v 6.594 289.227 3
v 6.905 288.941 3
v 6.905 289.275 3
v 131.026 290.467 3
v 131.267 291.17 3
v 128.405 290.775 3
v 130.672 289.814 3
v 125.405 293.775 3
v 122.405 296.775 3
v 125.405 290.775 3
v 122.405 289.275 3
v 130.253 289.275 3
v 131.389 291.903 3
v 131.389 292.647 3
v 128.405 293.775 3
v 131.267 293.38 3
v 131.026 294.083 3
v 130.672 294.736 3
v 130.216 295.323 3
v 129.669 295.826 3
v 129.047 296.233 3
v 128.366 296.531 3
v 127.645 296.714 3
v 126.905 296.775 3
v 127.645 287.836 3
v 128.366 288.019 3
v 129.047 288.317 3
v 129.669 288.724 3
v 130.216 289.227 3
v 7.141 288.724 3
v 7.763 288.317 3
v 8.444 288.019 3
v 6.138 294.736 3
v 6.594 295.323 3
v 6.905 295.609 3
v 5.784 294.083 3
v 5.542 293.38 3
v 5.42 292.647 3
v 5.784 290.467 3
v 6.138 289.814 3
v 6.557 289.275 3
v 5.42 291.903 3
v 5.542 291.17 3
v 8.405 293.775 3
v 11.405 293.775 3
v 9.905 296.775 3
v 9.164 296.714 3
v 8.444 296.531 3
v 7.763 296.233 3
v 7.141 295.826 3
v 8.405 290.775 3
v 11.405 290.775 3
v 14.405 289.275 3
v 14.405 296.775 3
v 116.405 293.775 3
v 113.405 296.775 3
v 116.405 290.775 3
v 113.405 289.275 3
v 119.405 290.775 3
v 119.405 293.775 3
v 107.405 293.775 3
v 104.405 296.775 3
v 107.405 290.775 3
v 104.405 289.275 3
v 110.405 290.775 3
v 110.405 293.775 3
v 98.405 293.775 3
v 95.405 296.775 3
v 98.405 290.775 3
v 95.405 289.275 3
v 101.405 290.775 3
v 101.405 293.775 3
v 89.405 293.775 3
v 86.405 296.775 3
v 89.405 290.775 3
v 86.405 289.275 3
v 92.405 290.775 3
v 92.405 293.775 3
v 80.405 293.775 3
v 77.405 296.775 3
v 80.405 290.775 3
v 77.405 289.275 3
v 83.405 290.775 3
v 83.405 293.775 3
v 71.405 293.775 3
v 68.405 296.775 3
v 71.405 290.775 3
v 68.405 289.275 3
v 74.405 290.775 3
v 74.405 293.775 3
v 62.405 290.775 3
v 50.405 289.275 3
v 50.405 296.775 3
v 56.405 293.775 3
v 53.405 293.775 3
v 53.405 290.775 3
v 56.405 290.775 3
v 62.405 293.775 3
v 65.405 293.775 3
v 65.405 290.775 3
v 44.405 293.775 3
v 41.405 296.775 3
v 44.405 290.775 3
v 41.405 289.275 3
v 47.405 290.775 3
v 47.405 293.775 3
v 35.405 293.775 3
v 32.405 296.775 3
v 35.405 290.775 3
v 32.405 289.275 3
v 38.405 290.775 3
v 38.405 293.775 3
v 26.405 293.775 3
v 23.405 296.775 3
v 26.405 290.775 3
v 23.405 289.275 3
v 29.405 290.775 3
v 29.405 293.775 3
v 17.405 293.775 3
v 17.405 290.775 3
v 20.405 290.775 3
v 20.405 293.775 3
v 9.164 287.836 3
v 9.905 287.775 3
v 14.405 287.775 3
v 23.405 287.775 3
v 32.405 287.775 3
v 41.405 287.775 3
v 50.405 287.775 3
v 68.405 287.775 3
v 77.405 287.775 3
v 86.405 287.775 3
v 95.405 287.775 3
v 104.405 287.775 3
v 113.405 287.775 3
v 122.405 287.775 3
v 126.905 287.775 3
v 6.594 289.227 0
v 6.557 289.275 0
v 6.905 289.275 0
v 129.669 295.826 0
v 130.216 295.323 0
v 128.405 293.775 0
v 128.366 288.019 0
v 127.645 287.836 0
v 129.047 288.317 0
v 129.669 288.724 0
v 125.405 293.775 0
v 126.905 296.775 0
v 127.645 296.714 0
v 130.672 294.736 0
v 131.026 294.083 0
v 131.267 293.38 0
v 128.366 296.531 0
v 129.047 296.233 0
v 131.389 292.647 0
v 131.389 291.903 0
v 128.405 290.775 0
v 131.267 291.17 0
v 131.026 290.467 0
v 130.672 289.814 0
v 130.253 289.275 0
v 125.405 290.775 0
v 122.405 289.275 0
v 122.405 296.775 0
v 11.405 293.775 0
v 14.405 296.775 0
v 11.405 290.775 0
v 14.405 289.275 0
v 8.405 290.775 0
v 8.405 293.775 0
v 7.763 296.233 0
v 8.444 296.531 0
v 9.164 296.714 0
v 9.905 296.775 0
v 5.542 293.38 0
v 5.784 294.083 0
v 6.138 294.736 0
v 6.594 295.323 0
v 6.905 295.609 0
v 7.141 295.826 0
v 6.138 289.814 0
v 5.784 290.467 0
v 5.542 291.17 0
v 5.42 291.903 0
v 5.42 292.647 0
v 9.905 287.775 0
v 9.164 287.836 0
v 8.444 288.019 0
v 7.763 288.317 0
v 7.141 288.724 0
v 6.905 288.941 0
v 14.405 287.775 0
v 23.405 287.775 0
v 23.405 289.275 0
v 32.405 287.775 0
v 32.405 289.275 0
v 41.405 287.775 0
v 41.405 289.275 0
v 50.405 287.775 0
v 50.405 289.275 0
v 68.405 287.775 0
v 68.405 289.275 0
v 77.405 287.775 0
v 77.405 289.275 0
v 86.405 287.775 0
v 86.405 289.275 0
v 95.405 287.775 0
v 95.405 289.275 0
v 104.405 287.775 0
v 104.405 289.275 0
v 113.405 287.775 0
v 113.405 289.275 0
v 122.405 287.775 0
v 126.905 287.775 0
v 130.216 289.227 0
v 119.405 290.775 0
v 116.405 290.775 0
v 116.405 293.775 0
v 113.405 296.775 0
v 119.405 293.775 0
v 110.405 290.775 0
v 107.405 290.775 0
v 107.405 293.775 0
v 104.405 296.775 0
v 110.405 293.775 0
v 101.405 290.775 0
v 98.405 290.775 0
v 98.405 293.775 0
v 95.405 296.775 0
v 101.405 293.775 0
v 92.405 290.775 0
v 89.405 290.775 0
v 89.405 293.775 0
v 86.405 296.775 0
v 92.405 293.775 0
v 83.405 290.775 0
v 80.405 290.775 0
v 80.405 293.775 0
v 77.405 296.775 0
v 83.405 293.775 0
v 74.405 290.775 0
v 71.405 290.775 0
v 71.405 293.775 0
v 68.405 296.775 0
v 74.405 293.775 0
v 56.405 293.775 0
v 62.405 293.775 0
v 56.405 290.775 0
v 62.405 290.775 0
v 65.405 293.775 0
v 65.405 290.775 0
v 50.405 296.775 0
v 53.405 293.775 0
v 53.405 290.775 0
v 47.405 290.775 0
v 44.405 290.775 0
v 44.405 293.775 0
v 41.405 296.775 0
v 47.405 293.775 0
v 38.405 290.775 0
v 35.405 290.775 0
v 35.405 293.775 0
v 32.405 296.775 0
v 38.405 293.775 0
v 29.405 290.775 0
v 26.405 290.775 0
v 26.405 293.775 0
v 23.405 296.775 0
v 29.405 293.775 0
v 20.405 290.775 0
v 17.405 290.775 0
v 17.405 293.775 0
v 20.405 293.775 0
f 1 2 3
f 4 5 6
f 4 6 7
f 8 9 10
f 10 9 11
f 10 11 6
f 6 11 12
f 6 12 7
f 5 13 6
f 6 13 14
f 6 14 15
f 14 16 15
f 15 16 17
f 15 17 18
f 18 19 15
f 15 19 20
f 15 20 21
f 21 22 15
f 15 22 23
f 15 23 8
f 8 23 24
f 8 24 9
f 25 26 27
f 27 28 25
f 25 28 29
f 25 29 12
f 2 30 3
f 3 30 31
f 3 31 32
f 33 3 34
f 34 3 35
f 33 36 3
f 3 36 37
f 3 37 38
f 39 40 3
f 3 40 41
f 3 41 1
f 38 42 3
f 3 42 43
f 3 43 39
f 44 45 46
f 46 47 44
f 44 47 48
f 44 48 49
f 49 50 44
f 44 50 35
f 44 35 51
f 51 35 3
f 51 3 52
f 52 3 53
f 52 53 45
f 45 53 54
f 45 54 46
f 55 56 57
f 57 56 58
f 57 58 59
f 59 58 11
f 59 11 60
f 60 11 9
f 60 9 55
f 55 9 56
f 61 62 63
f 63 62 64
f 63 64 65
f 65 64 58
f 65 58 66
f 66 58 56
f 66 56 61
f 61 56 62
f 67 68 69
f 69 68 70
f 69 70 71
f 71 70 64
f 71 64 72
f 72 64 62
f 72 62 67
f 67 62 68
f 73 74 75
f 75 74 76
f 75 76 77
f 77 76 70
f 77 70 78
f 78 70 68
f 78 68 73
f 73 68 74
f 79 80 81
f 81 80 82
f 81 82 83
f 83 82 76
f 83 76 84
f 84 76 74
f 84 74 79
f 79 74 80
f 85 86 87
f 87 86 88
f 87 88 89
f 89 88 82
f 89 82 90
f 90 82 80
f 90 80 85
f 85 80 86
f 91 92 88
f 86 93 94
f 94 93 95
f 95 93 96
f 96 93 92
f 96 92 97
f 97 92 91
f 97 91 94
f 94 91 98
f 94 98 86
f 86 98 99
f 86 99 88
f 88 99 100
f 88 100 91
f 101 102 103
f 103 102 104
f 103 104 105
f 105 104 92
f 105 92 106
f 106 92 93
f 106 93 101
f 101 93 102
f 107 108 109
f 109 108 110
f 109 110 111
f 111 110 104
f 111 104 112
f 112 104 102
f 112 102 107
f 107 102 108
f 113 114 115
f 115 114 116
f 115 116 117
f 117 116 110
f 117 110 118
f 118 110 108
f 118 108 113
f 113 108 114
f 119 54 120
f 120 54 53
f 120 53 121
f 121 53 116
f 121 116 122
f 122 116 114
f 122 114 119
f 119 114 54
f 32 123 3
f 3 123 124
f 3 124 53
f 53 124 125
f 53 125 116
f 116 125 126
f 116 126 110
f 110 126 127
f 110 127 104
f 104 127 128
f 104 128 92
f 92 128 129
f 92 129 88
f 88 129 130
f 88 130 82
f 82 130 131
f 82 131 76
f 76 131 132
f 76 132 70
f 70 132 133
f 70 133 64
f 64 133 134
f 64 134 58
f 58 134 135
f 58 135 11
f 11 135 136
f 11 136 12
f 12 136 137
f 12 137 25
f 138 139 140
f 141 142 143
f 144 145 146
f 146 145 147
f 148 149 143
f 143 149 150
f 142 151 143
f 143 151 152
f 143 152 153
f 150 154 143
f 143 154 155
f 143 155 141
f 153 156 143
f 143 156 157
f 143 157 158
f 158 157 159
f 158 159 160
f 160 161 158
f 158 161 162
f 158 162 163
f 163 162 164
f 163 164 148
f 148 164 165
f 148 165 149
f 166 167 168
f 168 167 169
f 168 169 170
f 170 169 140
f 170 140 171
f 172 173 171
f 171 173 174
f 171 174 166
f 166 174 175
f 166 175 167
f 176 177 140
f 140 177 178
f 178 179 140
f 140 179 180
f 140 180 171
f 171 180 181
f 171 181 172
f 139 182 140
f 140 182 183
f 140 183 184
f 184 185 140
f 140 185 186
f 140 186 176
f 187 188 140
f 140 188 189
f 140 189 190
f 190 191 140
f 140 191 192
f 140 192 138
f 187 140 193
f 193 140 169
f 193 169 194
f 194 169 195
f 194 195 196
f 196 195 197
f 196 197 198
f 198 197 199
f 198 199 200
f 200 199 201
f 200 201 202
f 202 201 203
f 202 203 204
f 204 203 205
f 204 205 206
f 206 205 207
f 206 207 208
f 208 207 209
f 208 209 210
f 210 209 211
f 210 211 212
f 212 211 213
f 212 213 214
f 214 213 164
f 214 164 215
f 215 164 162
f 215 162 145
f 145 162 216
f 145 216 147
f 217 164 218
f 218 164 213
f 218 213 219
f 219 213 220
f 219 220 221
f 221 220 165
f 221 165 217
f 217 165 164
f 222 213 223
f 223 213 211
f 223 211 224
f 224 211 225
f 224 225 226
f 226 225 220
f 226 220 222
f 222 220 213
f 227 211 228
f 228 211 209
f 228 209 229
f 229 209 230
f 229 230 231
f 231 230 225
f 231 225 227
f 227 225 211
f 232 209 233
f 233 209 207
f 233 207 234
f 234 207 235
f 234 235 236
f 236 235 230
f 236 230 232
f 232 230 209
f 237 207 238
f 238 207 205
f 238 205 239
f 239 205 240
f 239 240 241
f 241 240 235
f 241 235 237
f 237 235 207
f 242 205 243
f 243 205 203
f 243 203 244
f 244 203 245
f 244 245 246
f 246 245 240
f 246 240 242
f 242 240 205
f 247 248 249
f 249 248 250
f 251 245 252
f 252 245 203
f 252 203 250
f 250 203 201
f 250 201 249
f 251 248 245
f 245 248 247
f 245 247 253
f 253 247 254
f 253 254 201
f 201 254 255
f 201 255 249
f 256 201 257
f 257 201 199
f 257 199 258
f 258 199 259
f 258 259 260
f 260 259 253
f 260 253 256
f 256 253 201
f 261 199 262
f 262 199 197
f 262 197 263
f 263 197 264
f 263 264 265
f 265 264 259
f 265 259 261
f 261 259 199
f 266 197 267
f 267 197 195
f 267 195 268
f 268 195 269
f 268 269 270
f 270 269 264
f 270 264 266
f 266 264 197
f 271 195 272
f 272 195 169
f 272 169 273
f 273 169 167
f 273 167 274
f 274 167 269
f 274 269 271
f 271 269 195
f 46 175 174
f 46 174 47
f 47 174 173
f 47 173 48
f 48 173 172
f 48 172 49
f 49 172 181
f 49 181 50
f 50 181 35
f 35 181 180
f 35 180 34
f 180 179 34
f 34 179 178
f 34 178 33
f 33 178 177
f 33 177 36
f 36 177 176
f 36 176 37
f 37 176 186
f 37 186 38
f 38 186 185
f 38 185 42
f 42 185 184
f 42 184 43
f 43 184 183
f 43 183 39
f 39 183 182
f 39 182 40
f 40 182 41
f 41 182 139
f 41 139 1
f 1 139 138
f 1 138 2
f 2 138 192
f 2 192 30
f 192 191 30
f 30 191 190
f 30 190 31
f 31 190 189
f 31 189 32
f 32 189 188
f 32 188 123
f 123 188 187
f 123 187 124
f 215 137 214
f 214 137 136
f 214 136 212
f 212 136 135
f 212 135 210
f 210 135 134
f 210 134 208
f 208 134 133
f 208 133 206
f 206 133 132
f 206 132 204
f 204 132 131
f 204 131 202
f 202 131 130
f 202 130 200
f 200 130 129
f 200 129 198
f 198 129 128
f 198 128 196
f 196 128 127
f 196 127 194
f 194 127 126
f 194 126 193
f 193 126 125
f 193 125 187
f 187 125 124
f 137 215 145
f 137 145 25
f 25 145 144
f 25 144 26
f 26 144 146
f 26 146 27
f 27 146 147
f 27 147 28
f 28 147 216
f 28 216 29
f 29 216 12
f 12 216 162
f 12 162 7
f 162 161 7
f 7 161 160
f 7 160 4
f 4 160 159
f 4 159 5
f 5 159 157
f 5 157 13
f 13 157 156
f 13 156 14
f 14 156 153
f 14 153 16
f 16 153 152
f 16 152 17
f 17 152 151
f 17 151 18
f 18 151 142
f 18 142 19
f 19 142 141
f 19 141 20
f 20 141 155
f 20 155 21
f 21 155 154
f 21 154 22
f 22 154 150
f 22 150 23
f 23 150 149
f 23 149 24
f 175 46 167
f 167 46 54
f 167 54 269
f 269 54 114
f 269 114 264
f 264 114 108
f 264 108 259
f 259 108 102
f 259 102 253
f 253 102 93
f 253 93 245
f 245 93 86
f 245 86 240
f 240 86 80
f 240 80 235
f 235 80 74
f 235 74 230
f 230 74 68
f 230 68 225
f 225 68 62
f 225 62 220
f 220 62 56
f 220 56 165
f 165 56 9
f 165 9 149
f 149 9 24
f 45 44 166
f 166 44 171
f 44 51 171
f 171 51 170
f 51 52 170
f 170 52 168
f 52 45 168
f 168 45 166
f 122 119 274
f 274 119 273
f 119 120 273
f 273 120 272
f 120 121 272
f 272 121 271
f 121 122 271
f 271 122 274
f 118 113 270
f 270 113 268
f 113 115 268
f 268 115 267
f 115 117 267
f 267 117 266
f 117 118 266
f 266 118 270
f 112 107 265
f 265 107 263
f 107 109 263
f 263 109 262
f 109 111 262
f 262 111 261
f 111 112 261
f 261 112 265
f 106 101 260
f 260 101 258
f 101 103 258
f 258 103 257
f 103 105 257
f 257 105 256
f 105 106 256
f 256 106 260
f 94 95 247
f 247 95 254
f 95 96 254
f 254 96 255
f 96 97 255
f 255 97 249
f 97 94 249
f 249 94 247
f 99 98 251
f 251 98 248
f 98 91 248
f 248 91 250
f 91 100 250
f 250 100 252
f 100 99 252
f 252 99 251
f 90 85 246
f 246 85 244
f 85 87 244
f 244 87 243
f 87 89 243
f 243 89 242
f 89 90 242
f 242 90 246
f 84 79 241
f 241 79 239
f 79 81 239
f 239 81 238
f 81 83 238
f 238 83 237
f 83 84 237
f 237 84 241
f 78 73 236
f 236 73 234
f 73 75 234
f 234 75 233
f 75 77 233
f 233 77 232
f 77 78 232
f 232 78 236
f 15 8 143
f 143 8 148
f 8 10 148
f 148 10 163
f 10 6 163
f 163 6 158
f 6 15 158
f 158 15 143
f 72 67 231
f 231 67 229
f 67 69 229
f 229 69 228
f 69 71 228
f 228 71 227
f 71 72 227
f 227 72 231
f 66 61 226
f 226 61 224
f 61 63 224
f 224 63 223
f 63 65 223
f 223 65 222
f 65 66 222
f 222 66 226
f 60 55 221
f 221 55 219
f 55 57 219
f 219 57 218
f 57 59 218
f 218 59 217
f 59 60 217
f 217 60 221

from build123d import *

# Parameters (mm, degrees)
MODEL_W                 = 3
MODEL_H                 = 3
SALIENTE_EXTRUIR1_DEPTH = 3


with BuildPart() as part:
    # Model → Saliente-Extruir1 (new body)
    with BuildSketch(Plane.XY):
        with BuildLine():
            Line((9.904781567, 296.774995526), (126.904781567, 296.774995526))
            ThreePointArc((126.904781567, 296.774995526), (131.404781567, 292.274995526), (126.904781567, 287.774995526))
            Line((126.904781567, 287.774995526), (9.904781567, 287.774995526))
            ThreePointArc((9.904781567, 287.774995526), (5.404781567, 292.274995526), (9.904781567, 296.774995526))
        make_face()
        with Locations((9.904781567, 292.274995526)):
            Rectangle(MODEL_W, MODEL_H, mode=Mode.SUBTRACT)
        with Locations((18.904781567, 292.274995526)):
            Rectangle(MODEL_W, MODEL_H, mode=Mode.SUBTRACT)
        with Locations((27.904781567, 292.274995526)):
            Rectangle(MODEL_W, MODEL_H, mode=Mode.SUBTRACT)
        with Locations((36.904781567, 292.274995526)):
            Rectangle(MODEL_W, MODEL_H, mode=Mode.SUBTRACT)
        with Locations((45.904781567, 292.274995526)):
            Rectangle(MODEL_W, MODEL_H, mode=Mode.SUBTRACT)
        with Locations((54.904781567, 292.274995526)):
            Rectangle(MODEL_W, MODEL_H, mode=Mode.SUBTRACT)
        with Locations((63.904781567, 292.274995526)):
            Rectangle(MODEL_W, MODEL_H, mode=Mode.SUBTRACT)
        with Locations((72.904781567, 292.274995526)):
            Rectangle(MODEL_W, MODEL_H, mode=Mode.SUBTRACT)
        with Locations((81.904781567, 292.274995526)):
            Rectangle(MODEL_W, MODEL_H, mode=Mode.SUBTRACT)
        with Locations((90.904781567, 292.274995526)):
            Rectangle(MODEL_W, MODEL_H, mode=Mode.SUBTRACT)
        with Locations((126.904781567, 292.274995526)):
            Rectangle(MODEL_W, MODEL_H, mode=Mode.SUBTRACT)
        with Locations((99.904781567, 292.274995526)):
            Rectangle(MODEL_W, MODEL_H, mode=Mode.SUBTRACT)
        with Locations((108.904781567, 292.274995526)):
            Rectangle(MODEL_W, MODEL_H, mode=Mode.SUBTRACT)
        with Locations((117.904781567, 292.274995526)):
            Rectangle(MODEL_W, MODEL_H, mode=Mode.SUBTRACT)
    extrude(amount=SALIENTE_EXTRUIR1_DEPTH)


solid = part.part
